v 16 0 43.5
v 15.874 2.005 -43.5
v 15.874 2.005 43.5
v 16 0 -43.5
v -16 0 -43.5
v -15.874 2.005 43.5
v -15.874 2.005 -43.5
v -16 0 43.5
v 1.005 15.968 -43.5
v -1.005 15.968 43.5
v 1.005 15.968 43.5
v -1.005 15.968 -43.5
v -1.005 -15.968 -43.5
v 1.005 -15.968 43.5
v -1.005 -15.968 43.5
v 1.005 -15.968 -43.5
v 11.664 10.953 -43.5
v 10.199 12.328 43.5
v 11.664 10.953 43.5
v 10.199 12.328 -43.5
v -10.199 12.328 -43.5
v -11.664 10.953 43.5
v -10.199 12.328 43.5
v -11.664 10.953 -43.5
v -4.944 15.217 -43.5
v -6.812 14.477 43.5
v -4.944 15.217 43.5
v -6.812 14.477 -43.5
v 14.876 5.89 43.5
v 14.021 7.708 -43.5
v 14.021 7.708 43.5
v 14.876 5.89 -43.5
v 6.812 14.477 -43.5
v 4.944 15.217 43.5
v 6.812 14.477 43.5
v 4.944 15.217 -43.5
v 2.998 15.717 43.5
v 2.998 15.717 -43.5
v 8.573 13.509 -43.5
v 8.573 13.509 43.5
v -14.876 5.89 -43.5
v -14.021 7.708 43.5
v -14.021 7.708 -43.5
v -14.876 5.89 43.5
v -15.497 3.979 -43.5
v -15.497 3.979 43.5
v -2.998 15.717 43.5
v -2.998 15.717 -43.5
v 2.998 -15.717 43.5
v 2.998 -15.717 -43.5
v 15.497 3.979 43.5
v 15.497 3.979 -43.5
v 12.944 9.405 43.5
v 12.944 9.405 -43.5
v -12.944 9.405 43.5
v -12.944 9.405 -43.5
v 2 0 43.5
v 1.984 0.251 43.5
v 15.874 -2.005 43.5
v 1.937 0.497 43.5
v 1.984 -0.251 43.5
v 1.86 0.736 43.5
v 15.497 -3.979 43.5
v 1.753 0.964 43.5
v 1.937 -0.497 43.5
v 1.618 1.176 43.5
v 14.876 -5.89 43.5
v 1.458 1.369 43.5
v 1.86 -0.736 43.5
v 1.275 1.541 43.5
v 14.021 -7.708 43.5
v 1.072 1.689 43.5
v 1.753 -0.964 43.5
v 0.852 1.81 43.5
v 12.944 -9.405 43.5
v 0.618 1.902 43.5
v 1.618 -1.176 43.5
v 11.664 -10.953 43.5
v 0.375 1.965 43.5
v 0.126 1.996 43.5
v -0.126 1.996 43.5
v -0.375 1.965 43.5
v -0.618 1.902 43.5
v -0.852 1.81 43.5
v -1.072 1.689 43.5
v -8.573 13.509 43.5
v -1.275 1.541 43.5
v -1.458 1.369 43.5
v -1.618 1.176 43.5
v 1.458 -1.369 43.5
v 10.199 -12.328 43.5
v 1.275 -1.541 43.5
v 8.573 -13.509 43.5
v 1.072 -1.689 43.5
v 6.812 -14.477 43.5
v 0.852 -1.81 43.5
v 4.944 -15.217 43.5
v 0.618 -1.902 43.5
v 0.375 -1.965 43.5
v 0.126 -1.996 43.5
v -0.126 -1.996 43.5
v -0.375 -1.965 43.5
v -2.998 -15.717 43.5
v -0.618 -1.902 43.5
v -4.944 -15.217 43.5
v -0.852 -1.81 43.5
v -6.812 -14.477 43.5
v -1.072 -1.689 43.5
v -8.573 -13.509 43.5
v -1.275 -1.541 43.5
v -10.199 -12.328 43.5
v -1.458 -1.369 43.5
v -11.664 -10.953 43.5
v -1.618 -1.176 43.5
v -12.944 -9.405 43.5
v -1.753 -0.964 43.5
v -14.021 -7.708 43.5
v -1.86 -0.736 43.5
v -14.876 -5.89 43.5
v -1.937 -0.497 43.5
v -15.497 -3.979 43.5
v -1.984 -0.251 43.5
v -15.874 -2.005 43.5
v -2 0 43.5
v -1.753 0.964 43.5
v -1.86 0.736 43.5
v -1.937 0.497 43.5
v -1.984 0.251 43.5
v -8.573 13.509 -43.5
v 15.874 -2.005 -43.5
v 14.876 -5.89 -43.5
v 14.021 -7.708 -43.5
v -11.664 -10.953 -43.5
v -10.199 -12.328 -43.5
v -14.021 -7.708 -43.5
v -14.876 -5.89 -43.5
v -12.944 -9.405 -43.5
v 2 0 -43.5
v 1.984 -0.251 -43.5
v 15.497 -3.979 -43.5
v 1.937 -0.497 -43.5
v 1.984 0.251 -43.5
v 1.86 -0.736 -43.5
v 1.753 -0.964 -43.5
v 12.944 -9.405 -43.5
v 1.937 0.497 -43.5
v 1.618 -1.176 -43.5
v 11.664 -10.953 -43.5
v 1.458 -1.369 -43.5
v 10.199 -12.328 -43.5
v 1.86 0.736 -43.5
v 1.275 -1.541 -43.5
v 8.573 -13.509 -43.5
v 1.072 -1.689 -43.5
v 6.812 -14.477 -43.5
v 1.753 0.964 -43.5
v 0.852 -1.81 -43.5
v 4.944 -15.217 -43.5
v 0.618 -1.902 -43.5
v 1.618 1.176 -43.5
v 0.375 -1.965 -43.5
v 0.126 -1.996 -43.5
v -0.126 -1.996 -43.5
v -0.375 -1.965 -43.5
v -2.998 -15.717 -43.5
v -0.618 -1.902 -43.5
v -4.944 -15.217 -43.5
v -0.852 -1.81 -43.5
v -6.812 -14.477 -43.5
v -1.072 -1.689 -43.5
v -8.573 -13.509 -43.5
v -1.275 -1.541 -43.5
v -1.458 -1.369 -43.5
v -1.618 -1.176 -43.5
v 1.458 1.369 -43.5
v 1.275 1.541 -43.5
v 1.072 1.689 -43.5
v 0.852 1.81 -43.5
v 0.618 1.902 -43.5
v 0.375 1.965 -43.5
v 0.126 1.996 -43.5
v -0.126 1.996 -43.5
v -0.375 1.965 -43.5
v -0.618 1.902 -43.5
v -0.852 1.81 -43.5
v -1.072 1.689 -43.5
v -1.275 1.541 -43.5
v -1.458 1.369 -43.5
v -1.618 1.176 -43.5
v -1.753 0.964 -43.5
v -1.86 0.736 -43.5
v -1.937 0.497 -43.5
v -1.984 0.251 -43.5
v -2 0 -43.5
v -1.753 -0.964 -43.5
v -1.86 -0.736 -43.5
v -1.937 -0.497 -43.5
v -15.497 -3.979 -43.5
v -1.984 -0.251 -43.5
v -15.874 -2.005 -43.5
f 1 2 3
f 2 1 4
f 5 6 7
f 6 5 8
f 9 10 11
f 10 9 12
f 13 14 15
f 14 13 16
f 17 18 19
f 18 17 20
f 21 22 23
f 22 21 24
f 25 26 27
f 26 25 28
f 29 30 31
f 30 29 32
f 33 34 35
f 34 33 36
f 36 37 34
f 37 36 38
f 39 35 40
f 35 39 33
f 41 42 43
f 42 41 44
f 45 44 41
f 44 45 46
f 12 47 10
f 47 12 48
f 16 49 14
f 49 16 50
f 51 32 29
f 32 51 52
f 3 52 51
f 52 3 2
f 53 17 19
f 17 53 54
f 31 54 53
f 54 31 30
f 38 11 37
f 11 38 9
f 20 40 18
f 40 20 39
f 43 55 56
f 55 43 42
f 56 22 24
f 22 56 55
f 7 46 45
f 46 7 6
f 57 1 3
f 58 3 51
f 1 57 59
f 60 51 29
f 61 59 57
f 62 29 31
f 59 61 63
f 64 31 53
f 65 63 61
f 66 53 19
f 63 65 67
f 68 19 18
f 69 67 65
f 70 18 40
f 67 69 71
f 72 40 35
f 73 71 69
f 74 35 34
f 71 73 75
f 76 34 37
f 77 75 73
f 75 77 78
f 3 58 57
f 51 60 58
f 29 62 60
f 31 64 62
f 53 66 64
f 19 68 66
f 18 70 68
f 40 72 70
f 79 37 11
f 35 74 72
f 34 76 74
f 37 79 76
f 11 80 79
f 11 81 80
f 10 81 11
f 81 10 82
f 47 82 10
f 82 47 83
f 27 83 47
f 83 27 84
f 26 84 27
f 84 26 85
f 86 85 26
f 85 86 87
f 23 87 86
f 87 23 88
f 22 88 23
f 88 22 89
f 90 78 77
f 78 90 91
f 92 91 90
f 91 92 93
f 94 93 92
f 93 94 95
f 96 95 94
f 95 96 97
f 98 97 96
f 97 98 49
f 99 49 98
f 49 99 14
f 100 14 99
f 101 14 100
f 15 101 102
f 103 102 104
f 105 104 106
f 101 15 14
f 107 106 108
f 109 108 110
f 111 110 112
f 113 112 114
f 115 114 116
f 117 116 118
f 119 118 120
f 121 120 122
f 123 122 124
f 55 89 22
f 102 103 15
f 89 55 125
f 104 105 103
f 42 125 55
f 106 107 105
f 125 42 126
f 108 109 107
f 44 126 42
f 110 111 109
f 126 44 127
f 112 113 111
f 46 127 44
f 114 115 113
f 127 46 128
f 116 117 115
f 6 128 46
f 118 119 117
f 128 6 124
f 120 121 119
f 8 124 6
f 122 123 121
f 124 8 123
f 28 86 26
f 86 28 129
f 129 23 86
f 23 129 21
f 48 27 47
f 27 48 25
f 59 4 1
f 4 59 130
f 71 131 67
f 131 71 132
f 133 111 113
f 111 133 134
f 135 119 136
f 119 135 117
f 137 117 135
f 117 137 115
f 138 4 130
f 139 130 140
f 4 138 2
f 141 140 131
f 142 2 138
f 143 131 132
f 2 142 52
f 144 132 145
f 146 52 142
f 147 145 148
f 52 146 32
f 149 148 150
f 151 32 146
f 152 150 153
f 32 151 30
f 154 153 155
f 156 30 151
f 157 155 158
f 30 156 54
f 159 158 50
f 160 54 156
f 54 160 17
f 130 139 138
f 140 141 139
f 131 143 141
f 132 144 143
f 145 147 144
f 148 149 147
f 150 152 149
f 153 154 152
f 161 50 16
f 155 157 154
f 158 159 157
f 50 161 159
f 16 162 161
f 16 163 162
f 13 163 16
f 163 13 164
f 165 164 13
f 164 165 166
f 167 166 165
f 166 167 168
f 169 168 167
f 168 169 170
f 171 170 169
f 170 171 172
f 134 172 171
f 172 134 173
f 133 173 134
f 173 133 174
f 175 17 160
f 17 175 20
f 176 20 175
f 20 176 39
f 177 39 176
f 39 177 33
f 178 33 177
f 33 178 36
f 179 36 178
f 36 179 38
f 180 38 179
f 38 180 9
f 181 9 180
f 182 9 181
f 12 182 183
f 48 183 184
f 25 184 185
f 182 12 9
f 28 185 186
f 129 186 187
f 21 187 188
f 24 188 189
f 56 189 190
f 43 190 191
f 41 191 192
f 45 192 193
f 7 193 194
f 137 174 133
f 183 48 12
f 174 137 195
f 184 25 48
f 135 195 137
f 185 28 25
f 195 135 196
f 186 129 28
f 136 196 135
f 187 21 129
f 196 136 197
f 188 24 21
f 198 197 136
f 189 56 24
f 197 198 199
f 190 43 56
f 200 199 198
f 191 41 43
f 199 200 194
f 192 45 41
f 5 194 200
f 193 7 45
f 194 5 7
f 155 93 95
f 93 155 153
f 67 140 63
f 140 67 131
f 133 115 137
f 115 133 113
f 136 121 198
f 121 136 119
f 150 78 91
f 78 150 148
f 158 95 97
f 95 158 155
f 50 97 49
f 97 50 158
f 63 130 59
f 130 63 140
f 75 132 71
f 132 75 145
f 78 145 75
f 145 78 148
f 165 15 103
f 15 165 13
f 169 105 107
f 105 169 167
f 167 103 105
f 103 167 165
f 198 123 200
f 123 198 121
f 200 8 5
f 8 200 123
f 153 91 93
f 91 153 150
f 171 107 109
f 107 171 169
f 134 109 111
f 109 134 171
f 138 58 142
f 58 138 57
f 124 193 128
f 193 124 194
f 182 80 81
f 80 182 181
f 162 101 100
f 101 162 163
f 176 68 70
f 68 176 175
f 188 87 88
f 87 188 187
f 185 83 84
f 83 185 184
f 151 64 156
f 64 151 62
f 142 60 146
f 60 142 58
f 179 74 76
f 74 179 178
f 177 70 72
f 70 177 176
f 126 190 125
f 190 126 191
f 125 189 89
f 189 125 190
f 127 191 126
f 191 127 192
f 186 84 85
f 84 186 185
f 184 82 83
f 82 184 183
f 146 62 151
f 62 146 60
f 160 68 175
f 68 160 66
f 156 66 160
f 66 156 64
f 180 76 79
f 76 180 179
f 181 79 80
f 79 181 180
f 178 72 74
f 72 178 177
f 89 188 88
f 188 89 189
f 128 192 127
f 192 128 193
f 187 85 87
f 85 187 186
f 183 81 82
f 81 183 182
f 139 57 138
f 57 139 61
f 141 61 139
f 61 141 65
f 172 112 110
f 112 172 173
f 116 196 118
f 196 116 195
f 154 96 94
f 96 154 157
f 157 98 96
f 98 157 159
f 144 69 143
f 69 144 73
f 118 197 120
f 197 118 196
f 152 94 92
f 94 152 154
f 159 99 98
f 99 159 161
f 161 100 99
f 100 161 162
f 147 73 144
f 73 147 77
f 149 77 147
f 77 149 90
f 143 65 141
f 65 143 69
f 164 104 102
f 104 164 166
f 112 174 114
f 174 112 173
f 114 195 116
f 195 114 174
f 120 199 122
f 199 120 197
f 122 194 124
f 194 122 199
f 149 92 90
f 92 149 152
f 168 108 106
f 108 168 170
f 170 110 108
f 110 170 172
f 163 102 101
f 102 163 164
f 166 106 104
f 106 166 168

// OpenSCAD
$fn = 50;


difference() {
	union() {
		translate(v = [0, 0, -43.5000000000]) {
			cylinder(h = 87, r = 16.0000000000);
		}
	}
	union() {
		translate(v = [0, 0, -100.0000000000]) {
			cylinder(h = 200, r = 2);
		}
	}
}
